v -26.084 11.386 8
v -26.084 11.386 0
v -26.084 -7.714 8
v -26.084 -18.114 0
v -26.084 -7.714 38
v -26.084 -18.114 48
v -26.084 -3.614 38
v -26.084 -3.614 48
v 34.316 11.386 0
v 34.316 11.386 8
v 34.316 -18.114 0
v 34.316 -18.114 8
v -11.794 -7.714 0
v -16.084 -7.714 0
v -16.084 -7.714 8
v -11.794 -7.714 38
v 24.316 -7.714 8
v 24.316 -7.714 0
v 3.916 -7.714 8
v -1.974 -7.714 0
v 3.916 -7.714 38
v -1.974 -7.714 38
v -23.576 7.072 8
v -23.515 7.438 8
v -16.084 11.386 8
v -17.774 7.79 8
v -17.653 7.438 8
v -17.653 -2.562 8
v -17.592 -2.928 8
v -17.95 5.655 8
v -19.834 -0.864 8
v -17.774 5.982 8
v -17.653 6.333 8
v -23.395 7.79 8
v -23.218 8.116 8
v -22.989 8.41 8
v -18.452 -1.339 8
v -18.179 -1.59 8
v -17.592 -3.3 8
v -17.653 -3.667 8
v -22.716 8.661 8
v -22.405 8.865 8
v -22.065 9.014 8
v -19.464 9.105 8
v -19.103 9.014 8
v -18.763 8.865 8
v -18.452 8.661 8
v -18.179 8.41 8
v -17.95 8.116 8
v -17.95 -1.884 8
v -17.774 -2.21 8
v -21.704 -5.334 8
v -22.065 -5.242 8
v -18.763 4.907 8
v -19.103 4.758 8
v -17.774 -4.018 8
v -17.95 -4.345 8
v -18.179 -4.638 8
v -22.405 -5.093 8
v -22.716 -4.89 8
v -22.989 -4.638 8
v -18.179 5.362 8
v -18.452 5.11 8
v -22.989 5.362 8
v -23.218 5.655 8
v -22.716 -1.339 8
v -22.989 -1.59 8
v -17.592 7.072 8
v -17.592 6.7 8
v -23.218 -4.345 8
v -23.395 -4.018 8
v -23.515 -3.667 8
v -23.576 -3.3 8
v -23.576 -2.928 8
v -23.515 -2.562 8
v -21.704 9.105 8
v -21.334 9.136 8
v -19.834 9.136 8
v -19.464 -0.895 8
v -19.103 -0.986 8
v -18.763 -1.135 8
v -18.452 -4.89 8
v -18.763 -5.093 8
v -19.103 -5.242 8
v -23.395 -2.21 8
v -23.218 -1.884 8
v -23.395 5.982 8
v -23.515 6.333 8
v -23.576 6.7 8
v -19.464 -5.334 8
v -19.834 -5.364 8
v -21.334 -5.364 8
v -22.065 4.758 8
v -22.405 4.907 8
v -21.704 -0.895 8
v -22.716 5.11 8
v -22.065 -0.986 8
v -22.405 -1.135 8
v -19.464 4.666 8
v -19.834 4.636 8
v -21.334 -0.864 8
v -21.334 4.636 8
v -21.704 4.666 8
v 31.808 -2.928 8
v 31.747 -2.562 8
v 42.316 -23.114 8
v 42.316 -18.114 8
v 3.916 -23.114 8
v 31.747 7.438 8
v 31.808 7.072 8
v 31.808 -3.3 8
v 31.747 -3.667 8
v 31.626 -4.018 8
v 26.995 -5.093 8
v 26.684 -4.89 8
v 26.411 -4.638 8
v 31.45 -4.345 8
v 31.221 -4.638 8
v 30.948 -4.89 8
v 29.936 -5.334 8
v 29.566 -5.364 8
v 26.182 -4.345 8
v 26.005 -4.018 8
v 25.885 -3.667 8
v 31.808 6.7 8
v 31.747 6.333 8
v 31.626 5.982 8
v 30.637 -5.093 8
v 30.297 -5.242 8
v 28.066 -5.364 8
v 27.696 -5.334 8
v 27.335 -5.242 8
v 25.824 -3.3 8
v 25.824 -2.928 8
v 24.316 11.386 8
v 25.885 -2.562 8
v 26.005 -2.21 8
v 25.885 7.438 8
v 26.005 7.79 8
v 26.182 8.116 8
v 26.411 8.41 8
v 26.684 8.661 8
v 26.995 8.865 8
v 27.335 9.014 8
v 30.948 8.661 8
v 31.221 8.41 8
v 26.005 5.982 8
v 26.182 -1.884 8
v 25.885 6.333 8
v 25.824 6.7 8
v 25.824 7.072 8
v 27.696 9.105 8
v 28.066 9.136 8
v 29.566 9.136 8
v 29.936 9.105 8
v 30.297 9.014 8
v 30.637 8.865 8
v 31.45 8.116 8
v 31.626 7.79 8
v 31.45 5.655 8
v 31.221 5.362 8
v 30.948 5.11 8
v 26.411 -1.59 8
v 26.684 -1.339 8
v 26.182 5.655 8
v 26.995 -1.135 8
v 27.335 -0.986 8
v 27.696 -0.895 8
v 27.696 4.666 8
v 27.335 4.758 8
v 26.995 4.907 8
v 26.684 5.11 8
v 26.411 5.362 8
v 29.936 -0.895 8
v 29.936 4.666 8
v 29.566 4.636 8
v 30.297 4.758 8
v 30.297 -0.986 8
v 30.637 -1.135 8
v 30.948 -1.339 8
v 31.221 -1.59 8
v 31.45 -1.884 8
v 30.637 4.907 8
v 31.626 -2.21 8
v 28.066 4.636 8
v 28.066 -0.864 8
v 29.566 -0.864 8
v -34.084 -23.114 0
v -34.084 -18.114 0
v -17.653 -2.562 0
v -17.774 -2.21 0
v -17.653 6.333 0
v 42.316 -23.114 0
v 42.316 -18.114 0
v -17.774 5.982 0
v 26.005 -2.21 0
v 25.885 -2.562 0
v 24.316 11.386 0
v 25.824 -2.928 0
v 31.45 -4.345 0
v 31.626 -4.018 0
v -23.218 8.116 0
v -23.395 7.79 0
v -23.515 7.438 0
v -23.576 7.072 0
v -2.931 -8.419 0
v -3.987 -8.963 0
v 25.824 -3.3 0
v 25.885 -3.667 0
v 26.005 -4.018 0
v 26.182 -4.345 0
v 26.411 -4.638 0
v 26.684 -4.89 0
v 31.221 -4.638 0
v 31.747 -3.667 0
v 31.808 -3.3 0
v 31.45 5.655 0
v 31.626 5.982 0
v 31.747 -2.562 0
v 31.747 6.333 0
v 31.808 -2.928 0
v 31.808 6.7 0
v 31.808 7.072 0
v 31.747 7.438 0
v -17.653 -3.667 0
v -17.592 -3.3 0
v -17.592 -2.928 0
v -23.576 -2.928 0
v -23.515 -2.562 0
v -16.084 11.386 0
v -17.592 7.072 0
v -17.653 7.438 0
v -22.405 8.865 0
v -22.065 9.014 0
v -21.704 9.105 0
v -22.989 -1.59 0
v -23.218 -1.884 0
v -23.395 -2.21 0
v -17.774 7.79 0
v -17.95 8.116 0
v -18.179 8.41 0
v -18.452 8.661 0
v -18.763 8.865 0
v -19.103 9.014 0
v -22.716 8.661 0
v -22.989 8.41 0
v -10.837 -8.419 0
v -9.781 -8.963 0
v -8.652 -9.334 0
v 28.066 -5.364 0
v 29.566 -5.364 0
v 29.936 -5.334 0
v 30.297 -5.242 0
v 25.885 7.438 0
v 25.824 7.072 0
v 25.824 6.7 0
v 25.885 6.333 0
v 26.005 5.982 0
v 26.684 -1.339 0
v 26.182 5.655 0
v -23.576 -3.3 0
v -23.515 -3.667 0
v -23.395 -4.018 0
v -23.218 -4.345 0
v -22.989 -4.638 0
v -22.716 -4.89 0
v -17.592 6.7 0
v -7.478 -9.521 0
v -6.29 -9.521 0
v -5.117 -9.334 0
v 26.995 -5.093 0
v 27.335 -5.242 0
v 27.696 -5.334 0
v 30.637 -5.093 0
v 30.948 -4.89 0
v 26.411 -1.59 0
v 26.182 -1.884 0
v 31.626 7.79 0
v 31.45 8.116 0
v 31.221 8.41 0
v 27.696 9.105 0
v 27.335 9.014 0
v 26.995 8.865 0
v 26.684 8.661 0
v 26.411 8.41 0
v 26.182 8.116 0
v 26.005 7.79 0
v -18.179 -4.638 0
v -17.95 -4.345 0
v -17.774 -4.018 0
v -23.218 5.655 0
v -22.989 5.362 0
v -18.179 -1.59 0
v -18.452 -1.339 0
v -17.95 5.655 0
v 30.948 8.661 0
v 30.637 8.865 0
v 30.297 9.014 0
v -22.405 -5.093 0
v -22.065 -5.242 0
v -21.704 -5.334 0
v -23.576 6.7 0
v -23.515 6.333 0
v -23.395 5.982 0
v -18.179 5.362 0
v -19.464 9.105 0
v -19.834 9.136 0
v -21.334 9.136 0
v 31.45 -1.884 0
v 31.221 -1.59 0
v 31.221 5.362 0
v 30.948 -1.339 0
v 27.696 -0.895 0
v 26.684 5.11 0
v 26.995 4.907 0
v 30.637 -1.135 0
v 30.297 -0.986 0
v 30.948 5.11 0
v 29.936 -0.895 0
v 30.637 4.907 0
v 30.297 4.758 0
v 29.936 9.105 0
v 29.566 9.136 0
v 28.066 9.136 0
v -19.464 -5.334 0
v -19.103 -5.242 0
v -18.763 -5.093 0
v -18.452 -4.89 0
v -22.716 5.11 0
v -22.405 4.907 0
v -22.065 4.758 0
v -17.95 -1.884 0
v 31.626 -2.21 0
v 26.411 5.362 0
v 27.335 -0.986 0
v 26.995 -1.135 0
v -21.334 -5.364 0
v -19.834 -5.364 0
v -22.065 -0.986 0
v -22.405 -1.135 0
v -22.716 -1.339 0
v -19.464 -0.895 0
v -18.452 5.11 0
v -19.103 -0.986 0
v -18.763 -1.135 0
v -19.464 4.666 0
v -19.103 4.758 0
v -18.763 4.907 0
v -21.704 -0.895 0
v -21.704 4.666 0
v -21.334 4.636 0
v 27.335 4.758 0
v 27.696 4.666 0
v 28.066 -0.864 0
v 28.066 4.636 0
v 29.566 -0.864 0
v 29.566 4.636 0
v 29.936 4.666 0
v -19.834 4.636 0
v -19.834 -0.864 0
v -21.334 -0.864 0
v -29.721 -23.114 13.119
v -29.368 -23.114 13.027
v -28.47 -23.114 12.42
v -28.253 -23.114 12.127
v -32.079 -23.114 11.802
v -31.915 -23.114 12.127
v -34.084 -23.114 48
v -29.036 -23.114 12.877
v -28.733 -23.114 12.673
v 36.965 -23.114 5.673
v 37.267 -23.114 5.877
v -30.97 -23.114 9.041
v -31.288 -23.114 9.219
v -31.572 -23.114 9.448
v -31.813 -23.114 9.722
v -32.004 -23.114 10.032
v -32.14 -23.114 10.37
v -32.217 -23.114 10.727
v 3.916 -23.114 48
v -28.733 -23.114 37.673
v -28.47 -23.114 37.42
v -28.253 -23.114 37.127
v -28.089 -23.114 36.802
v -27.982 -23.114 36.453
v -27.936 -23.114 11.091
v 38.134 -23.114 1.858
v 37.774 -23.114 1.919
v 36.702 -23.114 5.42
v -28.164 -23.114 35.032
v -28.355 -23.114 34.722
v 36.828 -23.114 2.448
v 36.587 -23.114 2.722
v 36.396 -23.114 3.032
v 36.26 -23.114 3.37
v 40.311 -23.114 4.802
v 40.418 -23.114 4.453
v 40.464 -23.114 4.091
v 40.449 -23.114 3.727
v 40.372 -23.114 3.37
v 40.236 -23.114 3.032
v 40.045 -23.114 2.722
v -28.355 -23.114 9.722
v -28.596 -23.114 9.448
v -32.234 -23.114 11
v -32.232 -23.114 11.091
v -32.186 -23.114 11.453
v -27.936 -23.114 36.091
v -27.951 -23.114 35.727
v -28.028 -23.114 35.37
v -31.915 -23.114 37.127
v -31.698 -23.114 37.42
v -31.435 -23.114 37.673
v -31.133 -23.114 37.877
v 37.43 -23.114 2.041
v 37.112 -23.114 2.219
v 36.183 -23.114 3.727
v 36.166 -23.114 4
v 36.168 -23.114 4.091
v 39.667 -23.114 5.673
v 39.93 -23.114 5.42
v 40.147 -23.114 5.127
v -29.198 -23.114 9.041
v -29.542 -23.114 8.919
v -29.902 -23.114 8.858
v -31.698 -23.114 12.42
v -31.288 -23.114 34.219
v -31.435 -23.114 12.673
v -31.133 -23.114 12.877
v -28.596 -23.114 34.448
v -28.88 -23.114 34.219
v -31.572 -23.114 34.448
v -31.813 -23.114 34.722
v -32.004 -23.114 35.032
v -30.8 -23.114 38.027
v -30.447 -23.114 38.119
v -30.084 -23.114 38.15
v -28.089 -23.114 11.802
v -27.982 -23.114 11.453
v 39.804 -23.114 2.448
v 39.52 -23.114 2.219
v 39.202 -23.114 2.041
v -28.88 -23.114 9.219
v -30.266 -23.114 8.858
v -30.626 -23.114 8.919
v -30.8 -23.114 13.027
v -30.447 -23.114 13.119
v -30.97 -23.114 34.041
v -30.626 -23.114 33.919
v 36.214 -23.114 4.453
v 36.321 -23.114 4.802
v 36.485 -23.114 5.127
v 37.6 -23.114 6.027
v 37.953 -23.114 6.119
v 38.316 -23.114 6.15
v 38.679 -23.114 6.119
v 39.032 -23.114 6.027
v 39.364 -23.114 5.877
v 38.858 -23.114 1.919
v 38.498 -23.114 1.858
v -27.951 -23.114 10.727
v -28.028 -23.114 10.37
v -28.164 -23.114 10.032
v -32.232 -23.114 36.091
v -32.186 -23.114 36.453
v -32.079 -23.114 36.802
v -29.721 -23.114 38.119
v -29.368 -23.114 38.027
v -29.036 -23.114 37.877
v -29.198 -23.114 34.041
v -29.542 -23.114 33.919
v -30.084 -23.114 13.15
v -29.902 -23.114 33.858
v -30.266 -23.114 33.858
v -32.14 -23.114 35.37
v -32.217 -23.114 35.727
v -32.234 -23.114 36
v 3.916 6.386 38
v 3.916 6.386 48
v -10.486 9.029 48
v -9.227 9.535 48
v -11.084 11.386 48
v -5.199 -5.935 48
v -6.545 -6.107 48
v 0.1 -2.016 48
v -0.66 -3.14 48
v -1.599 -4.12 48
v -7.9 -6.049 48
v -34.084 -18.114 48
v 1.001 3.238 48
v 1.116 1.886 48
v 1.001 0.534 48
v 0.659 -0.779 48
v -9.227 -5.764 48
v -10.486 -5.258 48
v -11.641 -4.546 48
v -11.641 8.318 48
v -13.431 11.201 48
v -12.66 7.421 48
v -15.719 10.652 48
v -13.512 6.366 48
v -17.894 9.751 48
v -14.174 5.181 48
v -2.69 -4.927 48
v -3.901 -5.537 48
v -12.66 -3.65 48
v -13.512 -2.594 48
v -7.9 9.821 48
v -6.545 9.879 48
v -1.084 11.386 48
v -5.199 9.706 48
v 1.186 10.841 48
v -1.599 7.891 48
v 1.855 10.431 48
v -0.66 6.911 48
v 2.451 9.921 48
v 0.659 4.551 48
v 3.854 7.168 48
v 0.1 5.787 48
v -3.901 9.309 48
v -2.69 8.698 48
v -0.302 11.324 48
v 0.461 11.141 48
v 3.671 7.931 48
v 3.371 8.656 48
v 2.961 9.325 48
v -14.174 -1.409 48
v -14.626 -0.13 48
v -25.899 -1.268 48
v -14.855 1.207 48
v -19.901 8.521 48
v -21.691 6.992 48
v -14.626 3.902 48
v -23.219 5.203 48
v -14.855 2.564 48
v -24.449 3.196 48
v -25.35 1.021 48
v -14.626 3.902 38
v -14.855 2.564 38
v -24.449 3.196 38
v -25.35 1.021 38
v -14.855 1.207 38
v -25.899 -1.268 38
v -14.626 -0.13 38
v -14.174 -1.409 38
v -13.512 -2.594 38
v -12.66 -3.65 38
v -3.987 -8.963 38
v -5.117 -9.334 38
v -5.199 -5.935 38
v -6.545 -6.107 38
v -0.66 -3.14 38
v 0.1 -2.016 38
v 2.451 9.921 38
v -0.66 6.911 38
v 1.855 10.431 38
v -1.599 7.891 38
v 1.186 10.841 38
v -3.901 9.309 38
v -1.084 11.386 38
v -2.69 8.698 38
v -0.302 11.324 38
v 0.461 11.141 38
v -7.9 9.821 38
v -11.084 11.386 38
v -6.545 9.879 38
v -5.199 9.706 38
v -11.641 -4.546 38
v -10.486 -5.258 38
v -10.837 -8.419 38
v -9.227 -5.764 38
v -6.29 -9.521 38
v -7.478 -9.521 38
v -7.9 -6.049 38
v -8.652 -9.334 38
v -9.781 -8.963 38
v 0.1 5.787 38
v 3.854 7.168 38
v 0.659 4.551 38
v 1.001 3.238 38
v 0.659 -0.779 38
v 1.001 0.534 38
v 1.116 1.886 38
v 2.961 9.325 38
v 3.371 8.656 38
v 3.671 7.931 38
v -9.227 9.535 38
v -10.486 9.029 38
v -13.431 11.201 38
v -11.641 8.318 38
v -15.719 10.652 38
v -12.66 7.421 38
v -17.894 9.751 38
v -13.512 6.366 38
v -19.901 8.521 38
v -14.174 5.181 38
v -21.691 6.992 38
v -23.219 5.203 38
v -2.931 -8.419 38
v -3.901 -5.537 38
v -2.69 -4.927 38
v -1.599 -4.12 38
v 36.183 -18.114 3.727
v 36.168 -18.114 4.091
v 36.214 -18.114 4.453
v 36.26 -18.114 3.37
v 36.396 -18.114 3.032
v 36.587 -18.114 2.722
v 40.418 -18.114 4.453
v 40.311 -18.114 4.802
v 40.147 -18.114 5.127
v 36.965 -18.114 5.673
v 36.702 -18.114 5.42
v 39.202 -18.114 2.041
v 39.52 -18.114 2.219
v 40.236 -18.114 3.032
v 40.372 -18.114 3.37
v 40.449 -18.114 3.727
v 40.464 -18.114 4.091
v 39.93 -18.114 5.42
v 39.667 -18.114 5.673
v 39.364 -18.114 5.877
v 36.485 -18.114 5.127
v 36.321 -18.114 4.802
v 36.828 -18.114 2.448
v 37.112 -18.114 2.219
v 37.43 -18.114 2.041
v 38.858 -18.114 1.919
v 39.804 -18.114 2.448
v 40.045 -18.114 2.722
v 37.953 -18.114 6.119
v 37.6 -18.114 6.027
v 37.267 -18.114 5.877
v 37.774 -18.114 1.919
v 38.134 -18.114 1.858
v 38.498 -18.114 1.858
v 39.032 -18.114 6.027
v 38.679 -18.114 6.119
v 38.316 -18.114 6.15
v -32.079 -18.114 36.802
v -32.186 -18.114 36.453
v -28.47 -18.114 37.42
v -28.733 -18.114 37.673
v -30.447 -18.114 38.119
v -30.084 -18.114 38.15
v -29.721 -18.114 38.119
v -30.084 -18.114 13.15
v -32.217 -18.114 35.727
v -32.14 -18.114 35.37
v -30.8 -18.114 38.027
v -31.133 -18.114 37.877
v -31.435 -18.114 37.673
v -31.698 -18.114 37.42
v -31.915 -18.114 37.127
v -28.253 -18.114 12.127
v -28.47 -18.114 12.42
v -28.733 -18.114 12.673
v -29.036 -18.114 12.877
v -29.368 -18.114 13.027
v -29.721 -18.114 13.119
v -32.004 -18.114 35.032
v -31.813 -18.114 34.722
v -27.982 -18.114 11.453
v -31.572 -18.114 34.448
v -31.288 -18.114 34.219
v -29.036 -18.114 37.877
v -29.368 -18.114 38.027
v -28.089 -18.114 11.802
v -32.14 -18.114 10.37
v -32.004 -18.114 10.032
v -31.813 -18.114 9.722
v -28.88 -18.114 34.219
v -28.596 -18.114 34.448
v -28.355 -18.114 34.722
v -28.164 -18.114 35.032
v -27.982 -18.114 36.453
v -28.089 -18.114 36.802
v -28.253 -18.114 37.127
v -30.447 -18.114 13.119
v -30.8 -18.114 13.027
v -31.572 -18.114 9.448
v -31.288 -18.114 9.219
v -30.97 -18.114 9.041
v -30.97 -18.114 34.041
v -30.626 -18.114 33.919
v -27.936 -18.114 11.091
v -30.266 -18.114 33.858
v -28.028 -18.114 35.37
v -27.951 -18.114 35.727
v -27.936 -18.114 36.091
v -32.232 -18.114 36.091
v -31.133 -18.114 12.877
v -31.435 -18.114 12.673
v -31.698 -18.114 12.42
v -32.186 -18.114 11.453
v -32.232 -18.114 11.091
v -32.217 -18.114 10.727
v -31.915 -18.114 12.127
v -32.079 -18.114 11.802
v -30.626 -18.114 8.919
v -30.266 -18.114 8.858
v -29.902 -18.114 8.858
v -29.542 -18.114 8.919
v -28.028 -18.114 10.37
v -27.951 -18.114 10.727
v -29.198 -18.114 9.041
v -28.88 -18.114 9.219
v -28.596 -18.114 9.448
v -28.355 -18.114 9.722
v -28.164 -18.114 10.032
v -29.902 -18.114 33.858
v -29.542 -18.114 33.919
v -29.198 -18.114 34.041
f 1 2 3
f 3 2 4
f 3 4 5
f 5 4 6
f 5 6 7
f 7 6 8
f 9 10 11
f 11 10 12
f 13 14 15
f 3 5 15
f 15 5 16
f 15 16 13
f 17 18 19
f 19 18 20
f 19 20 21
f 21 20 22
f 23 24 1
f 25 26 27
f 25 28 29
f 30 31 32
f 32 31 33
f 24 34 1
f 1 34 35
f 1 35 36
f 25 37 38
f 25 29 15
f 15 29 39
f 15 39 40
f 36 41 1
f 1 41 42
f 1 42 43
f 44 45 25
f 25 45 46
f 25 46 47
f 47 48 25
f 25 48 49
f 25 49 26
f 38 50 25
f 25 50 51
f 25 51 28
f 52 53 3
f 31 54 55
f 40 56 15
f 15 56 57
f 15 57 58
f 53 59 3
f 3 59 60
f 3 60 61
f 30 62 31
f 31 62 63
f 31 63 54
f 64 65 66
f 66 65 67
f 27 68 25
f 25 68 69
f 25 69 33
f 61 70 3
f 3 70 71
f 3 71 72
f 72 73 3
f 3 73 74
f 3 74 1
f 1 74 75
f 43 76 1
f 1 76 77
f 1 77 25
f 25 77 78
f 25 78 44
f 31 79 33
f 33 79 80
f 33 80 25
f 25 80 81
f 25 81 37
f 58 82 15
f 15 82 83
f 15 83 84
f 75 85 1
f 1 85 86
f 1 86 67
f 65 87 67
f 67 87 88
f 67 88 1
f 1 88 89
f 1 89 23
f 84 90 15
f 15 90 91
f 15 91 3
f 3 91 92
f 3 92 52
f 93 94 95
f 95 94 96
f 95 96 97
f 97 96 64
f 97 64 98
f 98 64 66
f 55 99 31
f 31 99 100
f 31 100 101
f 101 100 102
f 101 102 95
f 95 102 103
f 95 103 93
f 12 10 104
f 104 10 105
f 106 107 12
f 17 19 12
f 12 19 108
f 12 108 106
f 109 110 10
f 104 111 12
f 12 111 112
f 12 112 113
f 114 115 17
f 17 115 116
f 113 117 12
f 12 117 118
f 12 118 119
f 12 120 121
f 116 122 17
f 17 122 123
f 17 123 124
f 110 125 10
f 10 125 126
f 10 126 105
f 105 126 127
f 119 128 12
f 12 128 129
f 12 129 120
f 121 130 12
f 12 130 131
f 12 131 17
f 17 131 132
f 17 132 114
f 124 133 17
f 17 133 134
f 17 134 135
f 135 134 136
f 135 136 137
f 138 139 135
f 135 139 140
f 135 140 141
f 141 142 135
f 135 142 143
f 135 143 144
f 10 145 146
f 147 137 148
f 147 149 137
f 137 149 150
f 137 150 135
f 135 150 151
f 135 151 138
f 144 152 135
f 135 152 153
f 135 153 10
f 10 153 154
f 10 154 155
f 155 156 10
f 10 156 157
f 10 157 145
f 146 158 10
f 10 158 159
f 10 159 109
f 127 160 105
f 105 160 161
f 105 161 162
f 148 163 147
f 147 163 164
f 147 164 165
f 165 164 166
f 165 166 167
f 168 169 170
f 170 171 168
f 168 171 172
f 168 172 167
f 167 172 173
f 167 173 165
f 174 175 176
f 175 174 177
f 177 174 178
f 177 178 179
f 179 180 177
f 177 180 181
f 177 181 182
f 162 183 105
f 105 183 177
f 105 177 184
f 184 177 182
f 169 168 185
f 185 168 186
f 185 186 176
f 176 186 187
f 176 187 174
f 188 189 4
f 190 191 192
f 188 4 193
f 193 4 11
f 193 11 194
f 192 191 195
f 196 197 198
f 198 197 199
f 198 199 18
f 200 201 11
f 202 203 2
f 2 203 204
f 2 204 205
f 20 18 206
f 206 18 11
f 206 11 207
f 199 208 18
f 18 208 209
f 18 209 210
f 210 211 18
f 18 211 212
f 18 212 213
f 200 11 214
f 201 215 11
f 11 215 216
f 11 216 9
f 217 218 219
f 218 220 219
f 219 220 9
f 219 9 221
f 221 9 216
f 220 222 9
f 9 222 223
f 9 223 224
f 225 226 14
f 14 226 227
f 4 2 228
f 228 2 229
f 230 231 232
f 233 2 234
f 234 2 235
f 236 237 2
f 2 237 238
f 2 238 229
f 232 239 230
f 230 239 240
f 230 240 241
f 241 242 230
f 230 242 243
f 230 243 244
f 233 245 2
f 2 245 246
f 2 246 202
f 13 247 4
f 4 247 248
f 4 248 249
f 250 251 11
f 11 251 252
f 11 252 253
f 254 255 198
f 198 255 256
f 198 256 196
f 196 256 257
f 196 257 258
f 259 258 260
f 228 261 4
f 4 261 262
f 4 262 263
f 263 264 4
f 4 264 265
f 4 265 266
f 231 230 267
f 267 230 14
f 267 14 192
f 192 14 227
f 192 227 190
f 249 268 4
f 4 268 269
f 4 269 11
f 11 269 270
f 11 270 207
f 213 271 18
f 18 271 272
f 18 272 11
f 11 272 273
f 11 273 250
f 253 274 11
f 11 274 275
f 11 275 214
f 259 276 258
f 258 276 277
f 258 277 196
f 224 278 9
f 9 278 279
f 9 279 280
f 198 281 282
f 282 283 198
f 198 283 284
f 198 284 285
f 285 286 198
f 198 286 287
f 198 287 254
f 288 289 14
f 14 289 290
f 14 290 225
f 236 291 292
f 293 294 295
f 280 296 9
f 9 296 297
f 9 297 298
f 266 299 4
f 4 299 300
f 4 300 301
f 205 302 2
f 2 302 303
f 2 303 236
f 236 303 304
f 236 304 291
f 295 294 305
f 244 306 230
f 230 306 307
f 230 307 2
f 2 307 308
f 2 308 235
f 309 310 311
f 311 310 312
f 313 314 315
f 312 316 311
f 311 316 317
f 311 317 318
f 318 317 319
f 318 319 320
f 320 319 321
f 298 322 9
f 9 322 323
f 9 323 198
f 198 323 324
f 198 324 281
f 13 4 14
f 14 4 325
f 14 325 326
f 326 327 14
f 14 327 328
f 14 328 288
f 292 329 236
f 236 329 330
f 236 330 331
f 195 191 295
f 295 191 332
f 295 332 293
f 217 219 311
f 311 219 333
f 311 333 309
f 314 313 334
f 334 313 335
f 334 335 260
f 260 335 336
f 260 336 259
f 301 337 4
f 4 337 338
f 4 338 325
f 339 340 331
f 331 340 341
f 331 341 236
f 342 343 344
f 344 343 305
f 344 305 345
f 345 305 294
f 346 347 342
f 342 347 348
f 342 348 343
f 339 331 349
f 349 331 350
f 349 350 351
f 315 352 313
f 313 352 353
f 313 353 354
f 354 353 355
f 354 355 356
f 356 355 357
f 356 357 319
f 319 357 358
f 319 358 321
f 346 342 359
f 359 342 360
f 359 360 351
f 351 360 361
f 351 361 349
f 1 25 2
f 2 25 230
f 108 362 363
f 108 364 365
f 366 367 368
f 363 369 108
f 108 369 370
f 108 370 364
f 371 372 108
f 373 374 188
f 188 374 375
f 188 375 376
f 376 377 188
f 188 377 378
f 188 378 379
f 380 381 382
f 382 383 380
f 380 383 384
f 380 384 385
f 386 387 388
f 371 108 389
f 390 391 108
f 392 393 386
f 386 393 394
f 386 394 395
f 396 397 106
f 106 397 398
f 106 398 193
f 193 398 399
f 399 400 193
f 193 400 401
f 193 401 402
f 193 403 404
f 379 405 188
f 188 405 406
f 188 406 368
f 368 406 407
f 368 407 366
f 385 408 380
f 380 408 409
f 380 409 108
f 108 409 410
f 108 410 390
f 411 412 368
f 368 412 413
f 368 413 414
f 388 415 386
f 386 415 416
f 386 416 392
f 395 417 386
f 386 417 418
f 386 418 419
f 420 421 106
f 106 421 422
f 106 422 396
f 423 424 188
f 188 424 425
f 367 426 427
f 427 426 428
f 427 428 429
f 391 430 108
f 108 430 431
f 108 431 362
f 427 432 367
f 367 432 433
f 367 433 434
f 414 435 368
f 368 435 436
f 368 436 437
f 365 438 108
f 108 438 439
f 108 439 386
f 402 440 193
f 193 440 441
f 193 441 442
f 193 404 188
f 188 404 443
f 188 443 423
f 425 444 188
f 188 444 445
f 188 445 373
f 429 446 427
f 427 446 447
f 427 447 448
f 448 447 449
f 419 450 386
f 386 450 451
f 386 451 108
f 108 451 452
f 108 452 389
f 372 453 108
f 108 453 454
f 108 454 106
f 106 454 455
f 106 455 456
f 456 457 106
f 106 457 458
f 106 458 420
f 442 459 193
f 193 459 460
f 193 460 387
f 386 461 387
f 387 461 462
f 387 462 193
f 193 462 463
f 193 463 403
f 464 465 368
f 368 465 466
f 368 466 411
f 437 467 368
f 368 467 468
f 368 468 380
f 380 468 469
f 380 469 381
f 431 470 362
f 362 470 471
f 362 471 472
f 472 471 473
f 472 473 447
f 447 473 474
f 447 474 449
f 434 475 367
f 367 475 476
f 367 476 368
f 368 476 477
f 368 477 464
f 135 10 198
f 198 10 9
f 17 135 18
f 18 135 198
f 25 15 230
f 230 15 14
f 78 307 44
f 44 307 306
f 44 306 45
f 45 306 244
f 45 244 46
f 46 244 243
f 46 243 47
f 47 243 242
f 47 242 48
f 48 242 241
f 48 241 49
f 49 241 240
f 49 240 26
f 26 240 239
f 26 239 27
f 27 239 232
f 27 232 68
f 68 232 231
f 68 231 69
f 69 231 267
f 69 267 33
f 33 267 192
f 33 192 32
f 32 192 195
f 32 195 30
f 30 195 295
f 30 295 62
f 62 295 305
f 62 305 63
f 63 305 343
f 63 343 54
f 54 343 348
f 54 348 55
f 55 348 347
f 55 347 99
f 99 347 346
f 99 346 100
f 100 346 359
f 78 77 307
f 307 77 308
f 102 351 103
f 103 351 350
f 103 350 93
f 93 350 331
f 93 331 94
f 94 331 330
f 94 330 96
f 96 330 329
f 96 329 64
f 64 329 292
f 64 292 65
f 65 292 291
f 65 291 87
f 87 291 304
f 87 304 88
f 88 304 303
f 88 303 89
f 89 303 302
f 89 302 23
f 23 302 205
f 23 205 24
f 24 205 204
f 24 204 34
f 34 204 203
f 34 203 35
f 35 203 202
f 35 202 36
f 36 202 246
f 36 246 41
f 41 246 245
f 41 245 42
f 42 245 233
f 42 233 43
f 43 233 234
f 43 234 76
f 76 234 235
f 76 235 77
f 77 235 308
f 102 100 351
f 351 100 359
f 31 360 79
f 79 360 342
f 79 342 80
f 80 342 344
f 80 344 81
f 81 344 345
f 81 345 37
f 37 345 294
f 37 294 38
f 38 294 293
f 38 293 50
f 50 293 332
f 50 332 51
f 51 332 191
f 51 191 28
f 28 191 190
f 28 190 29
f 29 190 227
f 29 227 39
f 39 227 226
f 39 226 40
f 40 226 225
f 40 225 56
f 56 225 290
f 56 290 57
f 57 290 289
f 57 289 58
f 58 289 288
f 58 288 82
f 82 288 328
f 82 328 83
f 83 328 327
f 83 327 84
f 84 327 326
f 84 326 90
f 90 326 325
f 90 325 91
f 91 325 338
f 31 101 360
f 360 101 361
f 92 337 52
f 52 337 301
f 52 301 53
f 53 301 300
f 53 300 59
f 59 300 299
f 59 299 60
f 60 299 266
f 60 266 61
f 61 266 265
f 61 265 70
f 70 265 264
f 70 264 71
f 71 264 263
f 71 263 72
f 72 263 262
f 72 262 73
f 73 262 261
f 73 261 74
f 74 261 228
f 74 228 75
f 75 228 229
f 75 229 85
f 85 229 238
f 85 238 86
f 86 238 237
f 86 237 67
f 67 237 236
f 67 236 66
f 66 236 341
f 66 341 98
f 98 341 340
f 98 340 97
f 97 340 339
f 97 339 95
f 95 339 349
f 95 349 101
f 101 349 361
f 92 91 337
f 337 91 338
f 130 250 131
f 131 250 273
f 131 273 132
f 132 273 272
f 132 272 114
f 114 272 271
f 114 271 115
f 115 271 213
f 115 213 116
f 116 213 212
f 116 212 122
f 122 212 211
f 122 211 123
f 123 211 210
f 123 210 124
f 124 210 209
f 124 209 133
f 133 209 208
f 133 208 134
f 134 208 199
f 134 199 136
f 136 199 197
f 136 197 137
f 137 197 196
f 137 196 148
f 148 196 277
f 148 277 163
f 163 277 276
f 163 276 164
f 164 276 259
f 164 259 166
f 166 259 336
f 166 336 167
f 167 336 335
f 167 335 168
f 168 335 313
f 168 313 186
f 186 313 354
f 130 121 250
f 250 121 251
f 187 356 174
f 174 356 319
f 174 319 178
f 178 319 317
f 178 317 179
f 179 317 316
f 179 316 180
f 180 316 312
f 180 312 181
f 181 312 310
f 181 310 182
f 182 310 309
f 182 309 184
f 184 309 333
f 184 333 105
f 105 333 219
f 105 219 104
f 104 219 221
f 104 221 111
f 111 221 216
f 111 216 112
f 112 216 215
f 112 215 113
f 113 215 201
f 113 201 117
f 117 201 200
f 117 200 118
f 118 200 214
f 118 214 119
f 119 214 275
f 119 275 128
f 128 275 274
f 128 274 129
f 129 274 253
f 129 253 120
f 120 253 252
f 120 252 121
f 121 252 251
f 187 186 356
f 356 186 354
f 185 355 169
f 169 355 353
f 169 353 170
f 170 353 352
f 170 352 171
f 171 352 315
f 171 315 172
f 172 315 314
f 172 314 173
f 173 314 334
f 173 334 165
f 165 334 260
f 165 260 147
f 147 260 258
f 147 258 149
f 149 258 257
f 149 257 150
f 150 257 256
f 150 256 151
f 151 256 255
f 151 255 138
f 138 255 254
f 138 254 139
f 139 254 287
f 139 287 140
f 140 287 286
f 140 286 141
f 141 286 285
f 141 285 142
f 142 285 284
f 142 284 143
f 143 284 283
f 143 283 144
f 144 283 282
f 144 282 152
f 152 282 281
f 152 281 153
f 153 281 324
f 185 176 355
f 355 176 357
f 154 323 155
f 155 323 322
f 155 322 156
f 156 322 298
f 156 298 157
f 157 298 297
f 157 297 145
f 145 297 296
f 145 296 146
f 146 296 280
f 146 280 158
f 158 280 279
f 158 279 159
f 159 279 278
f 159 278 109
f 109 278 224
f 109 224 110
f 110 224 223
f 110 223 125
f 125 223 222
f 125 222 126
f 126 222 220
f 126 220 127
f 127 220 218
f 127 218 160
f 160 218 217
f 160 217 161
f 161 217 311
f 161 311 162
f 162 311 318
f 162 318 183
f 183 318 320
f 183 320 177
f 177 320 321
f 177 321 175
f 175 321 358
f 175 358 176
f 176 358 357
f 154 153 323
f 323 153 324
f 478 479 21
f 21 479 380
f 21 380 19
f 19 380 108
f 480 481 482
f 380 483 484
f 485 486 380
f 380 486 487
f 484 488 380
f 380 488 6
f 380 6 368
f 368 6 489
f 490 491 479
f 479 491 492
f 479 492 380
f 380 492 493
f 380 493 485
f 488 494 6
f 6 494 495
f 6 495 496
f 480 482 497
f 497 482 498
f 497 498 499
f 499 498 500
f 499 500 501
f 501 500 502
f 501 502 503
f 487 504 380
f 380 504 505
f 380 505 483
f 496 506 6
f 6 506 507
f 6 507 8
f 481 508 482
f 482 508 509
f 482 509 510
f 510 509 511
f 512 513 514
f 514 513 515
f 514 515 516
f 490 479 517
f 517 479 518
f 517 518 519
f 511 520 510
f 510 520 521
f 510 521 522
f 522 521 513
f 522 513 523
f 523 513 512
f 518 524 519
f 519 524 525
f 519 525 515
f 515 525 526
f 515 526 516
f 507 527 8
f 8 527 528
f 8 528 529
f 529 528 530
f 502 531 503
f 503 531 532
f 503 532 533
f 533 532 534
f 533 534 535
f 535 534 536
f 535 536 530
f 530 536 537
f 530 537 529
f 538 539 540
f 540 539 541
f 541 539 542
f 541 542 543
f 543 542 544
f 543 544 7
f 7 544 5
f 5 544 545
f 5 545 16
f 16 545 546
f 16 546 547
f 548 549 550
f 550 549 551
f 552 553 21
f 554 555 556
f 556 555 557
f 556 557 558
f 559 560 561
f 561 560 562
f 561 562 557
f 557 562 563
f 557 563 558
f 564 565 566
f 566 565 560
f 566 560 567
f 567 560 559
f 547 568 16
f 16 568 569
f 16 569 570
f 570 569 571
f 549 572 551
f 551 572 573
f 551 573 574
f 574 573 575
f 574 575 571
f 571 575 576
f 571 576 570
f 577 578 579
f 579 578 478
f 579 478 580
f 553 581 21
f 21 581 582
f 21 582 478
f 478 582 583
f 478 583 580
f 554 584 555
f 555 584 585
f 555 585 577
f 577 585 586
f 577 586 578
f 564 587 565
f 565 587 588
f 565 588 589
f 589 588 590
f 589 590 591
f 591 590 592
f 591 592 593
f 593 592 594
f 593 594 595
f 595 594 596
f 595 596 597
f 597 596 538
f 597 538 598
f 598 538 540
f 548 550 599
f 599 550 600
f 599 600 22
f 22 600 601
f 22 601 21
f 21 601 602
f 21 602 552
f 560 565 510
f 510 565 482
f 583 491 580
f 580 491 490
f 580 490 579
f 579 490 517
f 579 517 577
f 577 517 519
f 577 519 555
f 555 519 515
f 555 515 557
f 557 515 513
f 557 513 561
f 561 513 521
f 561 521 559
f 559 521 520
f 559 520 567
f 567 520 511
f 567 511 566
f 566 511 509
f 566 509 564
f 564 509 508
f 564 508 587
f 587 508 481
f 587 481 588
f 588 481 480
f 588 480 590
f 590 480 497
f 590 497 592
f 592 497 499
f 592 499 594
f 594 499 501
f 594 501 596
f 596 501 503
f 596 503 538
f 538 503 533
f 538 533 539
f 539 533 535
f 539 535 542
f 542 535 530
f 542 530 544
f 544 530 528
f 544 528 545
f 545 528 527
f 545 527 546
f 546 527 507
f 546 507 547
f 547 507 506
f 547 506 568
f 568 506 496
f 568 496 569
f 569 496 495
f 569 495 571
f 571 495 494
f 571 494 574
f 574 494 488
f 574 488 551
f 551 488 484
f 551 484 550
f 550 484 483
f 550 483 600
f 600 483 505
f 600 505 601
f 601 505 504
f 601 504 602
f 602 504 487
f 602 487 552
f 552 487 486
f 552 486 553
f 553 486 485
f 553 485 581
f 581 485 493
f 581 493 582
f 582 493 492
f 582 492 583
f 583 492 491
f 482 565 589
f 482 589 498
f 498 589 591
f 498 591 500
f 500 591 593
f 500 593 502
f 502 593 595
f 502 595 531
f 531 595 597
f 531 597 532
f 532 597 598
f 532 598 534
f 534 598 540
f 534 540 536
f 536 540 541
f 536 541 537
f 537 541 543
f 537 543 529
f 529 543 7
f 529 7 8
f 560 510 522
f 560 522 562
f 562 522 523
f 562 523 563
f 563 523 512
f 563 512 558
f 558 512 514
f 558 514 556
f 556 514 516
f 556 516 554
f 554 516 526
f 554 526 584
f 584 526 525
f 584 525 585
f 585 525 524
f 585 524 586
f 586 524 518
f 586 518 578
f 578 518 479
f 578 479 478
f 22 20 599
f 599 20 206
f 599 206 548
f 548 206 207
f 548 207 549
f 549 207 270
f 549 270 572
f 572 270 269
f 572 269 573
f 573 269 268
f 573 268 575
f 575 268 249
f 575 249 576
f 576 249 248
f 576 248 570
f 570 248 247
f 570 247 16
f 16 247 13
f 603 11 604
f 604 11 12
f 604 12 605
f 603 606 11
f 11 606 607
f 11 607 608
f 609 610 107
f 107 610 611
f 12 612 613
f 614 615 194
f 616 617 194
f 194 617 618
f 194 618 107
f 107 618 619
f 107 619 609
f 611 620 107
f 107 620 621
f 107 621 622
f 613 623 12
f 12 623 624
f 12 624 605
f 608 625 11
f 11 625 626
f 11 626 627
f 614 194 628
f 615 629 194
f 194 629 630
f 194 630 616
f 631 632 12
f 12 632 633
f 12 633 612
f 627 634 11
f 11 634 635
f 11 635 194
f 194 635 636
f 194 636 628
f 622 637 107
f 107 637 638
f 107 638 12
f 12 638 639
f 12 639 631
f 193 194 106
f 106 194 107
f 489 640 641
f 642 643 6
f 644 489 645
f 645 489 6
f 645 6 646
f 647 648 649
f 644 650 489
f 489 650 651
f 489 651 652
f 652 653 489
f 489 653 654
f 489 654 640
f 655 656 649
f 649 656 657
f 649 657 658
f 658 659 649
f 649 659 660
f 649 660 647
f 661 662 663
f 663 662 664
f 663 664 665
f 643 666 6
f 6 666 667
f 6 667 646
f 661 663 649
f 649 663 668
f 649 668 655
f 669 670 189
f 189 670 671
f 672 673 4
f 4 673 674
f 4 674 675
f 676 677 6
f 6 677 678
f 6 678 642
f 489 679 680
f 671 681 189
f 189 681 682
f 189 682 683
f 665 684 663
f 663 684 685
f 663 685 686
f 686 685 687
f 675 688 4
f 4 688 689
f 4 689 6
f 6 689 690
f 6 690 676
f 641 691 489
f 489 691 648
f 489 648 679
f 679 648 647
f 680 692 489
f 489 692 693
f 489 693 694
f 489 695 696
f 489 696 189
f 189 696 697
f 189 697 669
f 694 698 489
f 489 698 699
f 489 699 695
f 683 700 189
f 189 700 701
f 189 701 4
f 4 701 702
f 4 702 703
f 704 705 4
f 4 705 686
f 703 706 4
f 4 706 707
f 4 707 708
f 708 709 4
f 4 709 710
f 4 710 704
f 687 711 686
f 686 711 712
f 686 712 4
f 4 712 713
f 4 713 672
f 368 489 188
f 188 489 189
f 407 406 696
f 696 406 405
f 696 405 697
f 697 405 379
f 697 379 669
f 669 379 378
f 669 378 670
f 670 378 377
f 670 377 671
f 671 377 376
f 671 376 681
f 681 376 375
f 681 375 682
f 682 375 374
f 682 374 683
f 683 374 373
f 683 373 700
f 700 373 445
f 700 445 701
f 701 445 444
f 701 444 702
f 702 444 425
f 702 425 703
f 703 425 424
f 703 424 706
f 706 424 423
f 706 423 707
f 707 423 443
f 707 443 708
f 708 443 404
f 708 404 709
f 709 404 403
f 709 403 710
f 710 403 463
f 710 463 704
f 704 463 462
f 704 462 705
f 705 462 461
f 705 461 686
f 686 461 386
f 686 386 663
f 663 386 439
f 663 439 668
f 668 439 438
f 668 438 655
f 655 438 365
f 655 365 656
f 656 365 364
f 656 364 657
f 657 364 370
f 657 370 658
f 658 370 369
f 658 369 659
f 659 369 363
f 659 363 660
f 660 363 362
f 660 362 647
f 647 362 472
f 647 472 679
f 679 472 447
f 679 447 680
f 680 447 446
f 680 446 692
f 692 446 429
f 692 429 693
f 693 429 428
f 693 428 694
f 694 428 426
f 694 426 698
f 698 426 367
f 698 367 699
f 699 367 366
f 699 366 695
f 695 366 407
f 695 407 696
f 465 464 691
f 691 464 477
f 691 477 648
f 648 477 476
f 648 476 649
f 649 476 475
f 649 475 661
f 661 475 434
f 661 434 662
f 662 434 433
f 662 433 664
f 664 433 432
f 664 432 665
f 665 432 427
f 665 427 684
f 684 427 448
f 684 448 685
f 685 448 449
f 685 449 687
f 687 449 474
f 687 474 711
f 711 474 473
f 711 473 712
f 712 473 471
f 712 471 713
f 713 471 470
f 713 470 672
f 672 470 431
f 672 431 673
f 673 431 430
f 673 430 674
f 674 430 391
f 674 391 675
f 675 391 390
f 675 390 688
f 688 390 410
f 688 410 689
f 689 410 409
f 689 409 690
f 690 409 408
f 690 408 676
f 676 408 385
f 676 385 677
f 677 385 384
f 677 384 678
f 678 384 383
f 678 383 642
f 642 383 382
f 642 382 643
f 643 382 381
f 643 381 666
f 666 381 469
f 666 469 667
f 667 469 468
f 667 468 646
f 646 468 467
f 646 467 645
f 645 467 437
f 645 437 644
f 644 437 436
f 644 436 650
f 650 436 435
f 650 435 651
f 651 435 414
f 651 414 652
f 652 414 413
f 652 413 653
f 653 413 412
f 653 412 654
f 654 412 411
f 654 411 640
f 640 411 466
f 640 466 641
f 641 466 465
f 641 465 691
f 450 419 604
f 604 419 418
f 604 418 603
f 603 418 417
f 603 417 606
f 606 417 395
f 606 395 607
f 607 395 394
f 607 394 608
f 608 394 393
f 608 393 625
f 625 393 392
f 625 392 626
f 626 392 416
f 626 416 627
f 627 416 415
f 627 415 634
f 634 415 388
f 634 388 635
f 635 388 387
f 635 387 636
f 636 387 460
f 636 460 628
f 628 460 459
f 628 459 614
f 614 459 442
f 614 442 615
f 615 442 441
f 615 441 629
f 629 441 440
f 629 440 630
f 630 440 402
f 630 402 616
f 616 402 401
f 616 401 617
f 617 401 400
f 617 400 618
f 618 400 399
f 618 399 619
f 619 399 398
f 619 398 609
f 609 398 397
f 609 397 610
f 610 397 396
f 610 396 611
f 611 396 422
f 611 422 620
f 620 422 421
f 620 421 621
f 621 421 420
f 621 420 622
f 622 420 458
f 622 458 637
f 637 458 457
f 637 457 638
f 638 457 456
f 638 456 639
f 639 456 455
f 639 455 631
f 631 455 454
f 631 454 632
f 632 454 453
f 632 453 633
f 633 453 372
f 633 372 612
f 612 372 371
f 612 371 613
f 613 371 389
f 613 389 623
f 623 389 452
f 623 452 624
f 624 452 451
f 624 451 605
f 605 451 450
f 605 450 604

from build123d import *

# Parameters (mm, degrees)
BOSS_EXTRUDE1_DEPTH = 8
SKETCH7_W           = 30
SKETCH7_H           = 15.4
BOSS_EXTRUDE2_DEPTH = 40
SKETCH8_W           = 30
SKETCH8_H           = 10
BOSS_EXTRUDE3_DEPTH = 19.1
SKETCH9_R           = 8
CUT_EXTRUDE1_DEPTH  = 10
FILLET2_R           = 15
FILLET3_R           = 5
SKETCH11_R          = 7.5
CUT_EXTRUDE2_DEPTH  = 38
SKETCH14_W          = 8
SKETCH14_H          = 5
BOSS_EXTRUDE5_DEPTH = 8
SKETCH15_W          = 48
SKETCH15_H          = 5
BOSS_EXTRUDE6_DEPTH = 8
SKETCH16_R          = 2.15
CUT_EXTRUDE4_DEPTH  = 5


with BuildPart() as part:
    # Sketch6 → Boss-Extrude1 (new body)
    with BuildSketch(Plane.XY):
        Polygon((-16.08404704, 11.385723939), (-16.08404704, -7.714276061), (24.31595296, -7.714276061), (24.31595296, 11.385723939), (34.31595296, 11.385723939), (34.31595296, -23.114276061), (-26.08404704, -23.114276061), (-26.08404704, 11.385723939), align=None)
        with BuildLine():
            Line((-19.83404704, 4.635723939), (-21.33404704, 4.635723939))
            ThreePointArc((-21.33404704, 4.635723939), (-23.58404704, 6.885723939), (-21.33404704, 9.135723939))
            Line((-21.33404704, 9.135723939), (-19.83404704, 9.135723939))
            ThreePointArc((-19.83404704, 9.135723939), (-17.58404704, 6.885723939), (-19.83404704, 4.635723939))
        make_face(mode=Mode.SUBTRACT)
        with BuildLine():
            Line((-19.83404704, -5.364276061), (-21.33404704, -5.364276061))
            ThreePointArc((-21.33404704, -5.364276061), (-23.58404704, -3.114276061), (-21.33404704, -0.864276061))
            Line((-21.33404704, -0.864276061), (-19.83404704, -0.864276061))
            ThreePointArc((-19.83404704, -0.864276061), (-17.58404704, -3.114276061), (-19.83404704, -5.364276061))
        make_face(mode=Mode.SUBTRACT)
        with BuildLine():
            Line((28.06595296, -5.364276061), (29.56595296, -5.364276061))
            ThreePointArc((29.56595296, -5.364276061), (31.81595296, -3.114276061), (29.56595296, -0.864276061))
            Line((29.56595296, -0.864276061), (28.06595296, -0.864276061))
            ThreePointArc((28.06595296, -0.864276061), (25.81595296, -3.114276061), (28.06595296, -5.364276061))
        make_face(mode=Mode.SUBTRACT)
        with BuildLine():
            Line((28.06595296, 4.635723939), (29.56595296, 4.635723939))
            ThreePointArc((29.56595296, 4.635723939), (31.81595296, 6.885723939), (29.56595296, 9.135723939))
            Line((29.56595296, 9.135723939), (28.06595296, 9.135723939))
            ThreePointArc((28.06595296, 9.135723939), (25.81595296, 6.885723939), (28.06595296, 4.635723939))
        make_face(mode=Mode.SUBTRACT)
    extrude(amount=BOSS_EXTRUDE1_DEPTH)

    # Sketch7 → Boss-Extrude2 (add)
    with BuildSketch(Plane.XY.offset(8)):
        with Locations((-11.08404704, -15.414276061)):
            Rectangle(SKETCH7_W, SKETCH7_H)
    extrude(amount=BOSS_EXTRUDE2_DEPTH)

    # Sketch8 → Boss-Extrude3 (add)
    with BuildSketch(Plane(origin=(0, -7.714276061, 0), x_dir=(1, 0, 0), z_dir=(0, 1, 0))):
        with Locations((-11.08404704, -43)):
            Rectangle(SKETCH8_W, SKETCH8_H)
    extrude(amount=BOSS_EXTRUDE3_DEPTH)

    # Sketch9 → Cut-Extrude1 (cut)
    with BuildSketch(Plane.XY.offset(48)):
        with Locations((-6.88404704, 1.885723939)):
            Circle(SKETCH9_R)
    extrude(amount=-CUT_EXTRUDE1_DEPTH, mode=Mode.SUBTRACT)

    # Fillet2
    fillet2_edges = [part.edges().sort_by_distance(p)[0] for p in [
        (-26.08404704, 11.385723939, 43),
    ]]
    fillet(fillet2_edges, radius=FILLET2_R)

    # Fillet3
    fillet3_edges = [part.edges().sort_by_distance(p)[0] for p in [
        (3.91595296, 11.385723939, 43),
    ]]
    fillet(fillet3_edges, radius=FILLET3_R)

    # Sketch11 → Cut-Extrude2 (cut)
    with BuildSketch(Plane(origin=(0, 0, 0), x_dir=(-1, 0, 0), z_dir=(0, 0, -1))):
        with Locations((6.88404704, -2.044839291)):
            Circle(SKETCH11_R)
    extrude(amount=-CUT_EXTRUDE2_DEPTH, mode=Mode.SUBTRACT)

    # Sketch14 → Boss-Extrude5 (add)
    with BuildSketch(Plane(origin=(34.31595296, 0, 0), x_dir=(0, 0, -1), z_dir=(1, 0, 0))):
        with Locations((-4, -20.614276061)):
            Rectangle(SKETCH14_W, SKETCH14_H)
    extrude(amount=BOSS_EXTRUDE5_DEPTH)

    # Sketch15 → Boss-Extrude6 (add)
    with BuildSketch(Plane.ZY.offset(26.08404704)):
        with Locations((24, -20.614276061)):
            Rectangle(SKETCH15_W, SKETCH15_H)
    extrude(amount=BOSS_EXTRUDE6_DEPTH)

    # Sketch16 → Cut-Extrude4 (cut)
    with BuildSketch(Plane(origin=(0, -18.114276061, 0), x_dir=(1, 0, 0), z_dir=(0, 1, 0))):
        with Locations((-30.08404704, -11)):
            Circle(SKETCH16_R)
        with Locations((-30.08404704, -36)):
            Circle(SKETCH16_R)
        with Locations((38.31595296, -4)):
            Circle(SKETCH16_R)
    extrude(amount=-CUT_EXTRUDE4_DEPTH, mode=Mode.SUBTRACT)


solid = part.part
